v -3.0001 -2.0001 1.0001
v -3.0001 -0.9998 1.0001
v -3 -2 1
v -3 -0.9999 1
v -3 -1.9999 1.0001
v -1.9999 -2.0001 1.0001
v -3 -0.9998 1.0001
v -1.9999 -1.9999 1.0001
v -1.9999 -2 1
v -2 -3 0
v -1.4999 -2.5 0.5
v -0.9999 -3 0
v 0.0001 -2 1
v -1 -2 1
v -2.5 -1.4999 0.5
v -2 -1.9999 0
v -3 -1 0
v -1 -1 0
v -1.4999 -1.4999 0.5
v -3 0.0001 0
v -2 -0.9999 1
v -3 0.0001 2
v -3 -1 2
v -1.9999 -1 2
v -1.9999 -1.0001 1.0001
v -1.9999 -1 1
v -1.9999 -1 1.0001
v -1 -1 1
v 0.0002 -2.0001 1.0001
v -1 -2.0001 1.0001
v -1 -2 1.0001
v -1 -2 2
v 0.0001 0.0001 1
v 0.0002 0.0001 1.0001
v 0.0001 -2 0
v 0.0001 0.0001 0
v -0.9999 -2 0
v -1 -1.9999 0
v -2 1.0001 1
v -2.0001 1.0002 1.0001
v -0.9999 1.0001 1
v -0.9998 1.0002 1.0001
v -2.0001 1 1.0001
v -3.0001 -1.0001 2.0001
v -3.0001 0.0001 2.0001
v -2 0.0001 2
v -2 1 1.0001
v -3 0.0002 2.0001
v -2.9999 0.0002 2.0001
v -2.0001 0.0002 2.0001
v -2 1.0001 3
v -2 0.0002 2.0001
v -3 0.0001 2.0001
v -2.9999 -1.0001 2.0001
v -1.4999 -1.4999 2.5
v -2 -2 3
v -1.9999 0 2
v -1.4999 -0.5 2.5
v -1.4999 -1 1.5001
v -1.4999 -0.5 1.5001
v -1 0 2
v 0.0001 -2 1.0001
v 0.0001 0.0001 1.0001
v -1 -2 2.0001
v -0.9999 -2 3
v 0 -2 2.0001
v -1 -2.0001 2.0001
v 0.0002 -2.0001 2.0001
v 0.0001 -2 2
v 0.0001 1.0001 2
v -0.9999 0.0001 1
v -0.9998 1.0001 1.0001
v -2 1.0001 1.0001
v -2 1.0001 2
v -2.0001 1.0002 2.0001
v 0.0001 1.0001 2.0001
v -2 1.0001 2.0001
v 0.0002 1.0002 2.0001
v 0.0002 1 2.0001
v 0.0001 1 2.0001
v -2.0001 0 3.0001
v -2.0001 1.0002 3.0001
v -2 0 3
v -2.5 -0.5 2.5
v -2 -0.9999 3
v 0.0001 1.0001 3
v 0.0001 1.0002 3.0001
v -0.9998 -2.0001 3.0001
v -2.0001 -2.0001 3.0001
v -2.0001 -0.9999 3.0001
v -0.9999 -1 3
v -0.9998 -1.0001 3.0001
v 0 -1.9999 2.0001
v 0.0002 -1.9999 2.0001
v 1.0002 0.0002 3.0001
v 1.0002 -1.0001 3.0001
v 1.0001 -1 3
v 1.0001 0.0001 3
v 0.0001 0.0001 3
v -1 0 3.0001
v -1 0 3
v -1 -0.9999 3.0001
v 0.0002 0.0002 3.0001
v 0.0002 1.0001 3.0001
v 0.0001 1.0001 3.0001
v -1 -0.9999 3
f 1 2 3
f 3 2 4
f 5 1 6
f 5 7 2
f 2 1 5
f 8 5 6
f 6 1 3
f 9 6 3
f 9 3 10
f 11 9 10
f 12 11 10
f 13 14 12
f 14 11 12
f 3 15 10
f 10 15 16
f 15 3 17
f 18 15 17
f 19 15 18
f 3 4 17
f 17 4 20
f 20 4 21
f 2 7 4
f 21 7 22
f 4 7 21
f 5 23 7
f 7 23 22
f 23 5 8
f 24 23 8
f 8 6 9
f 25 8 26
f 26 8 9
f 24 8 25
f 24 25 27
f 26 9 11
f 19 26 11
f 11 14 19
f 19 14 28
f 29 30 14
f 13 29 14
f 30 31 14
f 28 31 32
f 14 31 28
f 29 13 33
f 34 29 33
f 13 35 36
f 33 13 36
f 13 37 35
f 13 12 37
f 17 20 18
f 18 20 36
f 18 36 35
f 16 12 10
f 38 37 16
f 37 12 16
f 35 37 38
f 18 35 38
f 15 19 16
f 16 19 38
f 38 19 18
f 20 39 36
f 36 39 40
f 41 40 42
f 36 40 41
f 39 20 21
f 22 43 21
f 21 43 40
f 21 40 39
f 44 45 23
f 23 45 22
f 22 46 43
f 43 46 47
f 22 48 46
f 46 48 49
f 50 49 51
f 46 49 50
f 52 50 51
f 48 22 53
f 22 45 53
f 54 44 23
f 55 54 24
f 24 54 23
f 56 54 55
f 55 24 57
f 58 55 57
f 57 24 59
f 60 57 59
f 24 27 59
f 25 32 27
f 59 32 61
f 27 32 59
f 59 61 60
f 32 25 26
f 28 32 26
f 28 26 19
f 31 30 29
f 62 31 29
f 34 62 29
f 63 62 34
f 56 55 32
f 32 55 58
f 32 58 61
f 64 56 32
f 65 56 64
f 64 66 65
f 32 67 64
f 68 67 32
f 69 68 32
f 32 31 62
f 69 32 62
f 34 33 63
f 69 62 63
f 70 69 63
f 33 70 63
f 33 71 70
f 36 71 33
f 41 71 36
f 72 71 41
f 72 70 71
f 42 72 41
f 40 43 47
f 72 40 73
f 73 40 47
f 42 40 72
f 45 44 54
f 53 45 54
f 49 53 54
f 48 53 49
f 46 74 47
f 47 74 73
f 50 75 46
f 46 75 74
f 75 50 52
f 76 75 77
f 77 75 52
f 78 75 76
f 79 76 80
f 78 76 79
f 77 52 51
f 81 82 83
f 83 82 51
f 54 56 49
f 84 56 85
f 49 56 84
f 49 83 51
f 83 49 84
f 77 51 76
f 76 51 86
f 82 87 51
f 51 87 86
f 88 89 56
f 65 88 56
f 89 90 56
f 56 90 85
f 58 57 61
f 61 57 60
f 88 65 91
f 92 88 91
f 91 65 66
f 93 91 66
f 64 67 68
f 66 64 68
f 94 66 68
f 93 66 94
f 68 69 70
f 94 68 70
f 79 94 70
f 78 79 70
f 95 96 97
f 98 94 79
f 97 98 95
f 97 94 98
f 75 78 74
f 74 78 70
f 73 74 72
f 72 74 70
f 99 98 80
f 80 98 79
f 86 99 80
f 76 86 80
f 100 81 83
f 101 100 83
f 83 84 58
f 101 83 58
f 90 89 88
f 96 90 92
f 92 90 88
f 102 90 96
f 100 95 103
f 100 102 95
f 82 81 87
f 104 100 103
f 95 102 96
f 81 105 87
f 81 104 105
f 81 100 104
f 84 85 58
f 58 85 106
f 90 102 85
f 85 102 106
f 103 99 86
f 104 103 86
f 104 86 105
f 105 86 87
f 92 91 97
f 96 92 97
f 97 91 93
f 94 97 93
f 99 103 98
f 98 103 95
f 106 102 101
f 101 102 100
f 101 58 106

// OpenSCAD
module skew_cube(a,b) {
	multmatrix(m = [
		[1, 0, a, 0],
		[0, 1, b, 0],
		[0, 0, 1, 0]
	]) cube(size=1.00001);
}

module span_cube(x1,y1,x2,y2,z) {
	translate(v=[x1,y1,z])
	skew_cube(x2-x1,y2-y1);
}


union() {
span_cube(-2,-3,-3,-2,0);
span_cube(-2,-3,-1,-2,0);
span_cube(-1,-2,-1,-2,0);
span_cube(-1,-2,-2,-1,0);
span_cube(-1,-2,-1,-1,0);
span_cube(-3,-1,-3,-2,0);
span_cube(-3,-1,-2,-1,0);
span_cube(-3,-1,-2,0,0);
span_cube(-2,-1,-3,-2,0);
span_cube(-2,-1,-1,-2,0);
span_cube(-2,-1,-2,-1,0);
span_cube(-2,-1,-1,-1,0);
span_cube(-2,-1,-2,0,0);
span_cube(-1,-1,-1,-2,0);
span_cube(-1,-1,-2,-1,0);
span_cube(-1,-1,-1,-1,0);
span_cube(-1,-1,-2,0,0);
span_cube(-3,-2,-3,-1,1);
span_cube(-1,-2,-1,-2,1);
span_cube(-1,-2,-1,-1,1);
span_cube(-2,-1,-1,-2,1);
span_cube(-2,-1,-3,-1,1);
span_cube(-2,-1,-1,-1,1);
span_cube(-2,-1,-2,0,1);
span_cube(-2,-1,-1,0,1);
span_cube(-1,-1,-1,-2,1);
span_cube(-1,-1,-1,-1,1);
span_cube(-1,-1,-2,0,1);
span_cube(-1,-1,-1,0,1);
span_cube(-2,0,-3,-1,1);
span_cube(-2,0,-1,-1,1);
span_cube(-2,0,-2,0,1);
span_cube(-2,0,-1,0,1);
span_cube(-1,-2,-2,-2,2);
span_cube(-1,-2,-1,-1,2);
span_cube(-1,-2,0,-1,2);
span_cube(-3,-1,-2,-2,2);
span_cube(-3,-1,-2,0,2);
span_cube(-1,-1,-2,-2,2);
span_cube(-1,-1,-1,-1,2);
span_cube(-1,-1,0,-1,2);
span_cube(-1,-1,-2,0,2);
span_cube(-1,-1,-1,0,2);
span_cube(-2,0,-1,-1,2);
span_cube(-2,0,-2,0,2);
span_cube(-2,0,-1,0,2);
span_cube(-1,0,-1,-1,2);
span_cube(-1,0,0,-1,2);
span_cube(-1,0,-2,0,2);
span_cube(-1,0,-1,0,2);
}
